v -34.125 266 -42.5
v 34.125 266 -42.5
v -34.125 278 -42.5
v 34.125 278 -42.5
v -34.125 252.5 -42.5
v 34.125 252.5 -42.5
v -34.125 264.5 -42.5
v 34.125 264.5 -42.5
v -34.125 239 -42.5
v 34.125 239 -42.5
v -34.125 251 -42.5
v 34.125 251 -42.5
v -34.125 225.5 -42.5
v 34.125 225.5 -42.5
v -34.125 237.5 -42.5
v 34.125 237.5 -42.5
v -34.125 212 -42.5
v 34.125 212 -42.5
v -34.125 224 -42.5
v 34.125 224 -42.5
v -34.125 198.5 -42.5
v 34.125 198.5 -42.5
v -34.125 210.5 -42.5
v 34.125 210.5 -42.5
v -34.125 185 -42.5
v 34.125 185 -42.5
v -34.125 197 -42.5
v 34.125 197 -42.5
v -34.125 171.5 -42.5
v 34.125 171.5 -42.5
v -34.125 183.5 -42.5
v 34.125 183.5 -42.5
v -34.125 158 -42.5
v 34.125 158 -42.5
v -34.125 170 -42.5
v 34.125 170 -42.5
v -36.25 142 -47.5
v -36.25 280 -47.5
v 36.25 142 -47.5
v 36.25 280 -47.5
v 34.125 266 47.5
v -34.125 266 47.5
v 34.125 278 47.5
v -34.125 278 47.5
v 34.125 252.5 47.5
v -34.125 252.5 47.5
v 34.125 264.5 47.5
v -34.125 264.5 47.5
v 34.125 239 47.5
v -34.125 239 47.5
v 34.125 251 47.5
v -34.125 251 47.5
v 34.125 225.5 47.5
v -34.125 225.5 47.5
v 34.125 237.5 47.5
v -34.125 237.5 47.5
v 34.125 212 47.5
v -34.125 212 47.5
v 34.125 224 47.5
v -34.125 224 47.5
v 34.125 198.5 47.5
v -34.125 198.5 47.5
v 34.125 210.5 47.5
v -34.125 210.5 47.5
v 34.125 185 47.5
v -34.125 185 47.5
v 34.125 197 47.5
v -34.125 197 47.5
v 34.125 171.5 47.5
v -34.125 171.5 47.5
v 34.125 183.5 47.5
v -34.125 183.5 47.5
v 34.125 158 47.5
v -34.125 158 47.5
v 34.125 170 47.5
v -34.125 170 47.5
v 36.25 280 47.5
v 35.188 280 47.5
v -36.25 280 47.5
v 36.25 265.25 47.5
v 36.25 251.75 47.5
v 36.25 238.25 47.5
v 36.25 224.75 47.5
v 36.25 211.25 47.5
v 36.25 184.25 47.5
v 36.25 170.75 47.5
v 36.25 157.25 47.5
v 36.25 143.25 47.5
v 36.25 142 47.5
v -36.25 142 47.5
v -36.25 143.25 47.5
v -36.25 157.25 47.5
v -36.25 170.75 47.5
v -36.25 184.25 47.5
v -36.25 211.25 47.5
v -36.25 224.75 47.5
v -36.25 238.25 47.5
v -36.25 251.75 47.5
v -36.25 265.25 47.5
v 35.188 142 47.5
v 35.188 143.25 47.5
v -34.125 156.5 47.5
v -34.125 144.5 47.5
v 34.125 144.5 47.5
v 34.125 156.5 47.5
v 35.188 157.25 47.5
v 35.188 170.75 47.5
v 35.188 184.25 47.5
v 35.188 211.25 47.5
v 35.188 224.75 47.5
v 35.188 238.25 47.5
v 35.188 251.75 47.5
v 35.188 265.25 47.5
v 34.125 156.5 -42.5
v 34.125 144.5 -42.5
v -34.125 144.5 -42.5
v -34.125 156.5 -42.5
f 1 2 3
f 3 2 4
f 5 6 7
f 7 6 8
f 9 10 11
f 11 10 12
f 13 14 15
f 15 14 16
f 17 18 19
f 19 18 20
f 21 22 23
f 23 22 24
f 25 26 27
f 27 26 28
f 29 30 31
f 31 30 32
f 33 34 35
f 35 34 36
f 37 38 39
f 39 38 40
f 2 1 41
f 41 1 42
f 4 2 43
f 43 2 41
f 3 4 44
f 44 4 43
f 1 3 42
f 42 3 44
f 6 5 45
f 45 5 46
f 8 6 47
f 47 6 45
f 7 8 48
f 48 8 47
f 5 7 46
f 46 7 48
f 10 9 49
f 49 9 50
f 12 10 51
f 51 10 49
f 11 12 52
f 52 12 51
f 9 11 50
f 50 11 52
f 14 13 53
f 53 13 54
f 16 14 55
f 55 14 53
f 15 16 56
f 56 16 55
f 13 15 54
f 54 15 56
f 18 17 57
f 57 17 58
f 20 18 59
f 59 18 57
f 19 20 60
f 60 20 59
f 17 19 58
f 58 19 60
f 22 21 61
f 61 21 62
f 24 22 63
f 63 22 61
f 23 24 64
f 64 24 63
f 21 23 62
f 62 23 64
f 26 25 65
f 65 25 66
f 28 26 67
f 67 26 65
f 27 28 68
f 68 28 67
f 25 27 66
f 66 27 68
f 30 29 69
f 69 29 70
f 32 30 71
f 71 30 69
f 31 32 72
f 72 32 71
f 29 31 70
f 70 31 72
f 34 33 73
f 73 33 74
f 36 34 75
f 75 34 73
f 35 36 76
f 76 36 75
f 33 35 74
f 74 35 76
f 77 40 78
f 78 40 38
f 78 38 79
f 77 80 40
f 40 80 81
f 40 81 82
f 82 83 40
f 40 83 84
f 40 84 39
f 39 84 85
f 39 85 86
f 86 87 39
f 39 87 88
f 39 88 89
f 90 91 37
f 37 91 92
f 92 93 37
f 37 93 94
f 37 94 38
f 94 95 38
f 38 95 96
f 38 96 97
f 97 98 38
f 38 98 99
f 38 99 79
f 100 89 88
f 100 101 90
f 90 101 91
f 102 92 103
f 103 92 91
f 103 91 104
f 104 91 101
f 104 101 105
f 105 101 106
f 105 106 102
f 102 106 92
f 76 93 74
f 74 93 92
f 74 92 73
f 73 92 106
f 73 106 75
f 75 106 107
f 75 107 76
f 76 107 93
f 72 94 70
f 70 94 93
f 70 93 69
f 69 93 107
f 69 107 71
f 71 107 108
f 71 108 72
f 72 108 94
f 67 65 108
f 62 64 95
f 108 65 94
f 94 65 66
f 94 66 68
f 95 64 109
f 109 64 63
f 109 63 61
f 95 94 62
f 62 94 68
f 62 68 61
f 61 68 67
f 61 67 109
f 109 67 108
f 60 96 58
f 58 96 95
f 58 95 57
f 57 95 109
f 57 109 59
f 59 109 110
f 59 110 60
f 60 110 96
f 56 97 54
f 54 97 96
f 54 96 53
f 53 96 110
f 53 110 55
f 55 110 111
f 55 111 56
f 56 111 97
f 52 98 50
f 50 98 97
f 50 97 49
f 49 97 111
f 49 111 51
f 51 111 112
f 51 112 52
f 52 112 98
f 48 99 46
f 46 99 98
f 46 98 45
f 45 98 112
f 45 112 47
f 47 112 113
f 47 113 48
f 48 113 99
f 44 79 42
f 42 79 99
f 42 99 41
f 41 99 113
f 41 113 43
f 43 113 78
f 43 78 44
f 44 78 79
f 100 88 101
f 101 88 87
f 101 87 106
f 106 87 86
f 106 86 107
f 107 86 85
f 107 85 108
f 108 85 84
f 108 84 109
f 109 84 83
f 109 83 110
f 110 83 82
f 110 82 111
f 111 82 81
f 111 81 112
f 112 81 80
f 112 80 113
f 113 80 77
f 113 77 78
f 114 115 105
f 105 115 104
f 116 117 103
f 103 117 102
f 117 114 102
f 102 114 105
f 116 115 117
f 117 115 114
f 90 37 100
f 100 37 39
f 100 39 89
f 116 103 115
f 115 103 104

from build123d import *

# Parameters (mm, degrees)
SKETCH1_W           = 72.5
SKETCH1_H           = 95
BOSS_EXTRUDE1_DEPTH = 104.5
SKETCH2_W           = 68.25
SKETCH2_H           = 22.5
CUT_EXTRUDE1_DEPTH  = 90
SKETCH3_W           = 72.5
SKETCH3_H           = 95
BOSS_EXTRUDE2_DEPTH = 175.5
SKETCH4_W           = 68.25
SKETCH4_H           = 12
CUT_EXTRUDE3_DEPTH  = 90
SPLIT1_OUTLINE_W    = 72.5
SPLIT1_OUTLINE_H    = 95
SPLIT1_DEPTH        = 144.5
SKETCH5_W           = 72.5
SKETCH5_H           = 95
BOSS_EXTRUDE3_DEPTH = 2.5


# Read off the part's stored shape, not the designer's step: Split1
with BuildPart() as part:
    # Sketch1 → Boss-Extrude1 (new body)
    with BuildSketch(Plane(origin=(0, 0, 0), x_dir=(1, 0, 0), z_dir=(0, 1, 0))):
        Rectangle(SKETCH1_W, SKETCH1_H)
    extrude(amount=BOSS_EXTRUDE1_DEPTH)

    # Sketch2 → Cut-Extrude1 (cut)
    with BuildSketch(Plane.XY.offset(47.5)):
        with Locations((0, 13.75)):
            Rectangle(SKETCH2_W, SKETCH2_H)
        with Locations((0, 39.25)):
            Rectangle(SKETCH2_W, SKETCH2_H)
        with Locations((0, 64.75)):
            Rectangle(SKETCH2_W, SKETCH2_H)
        with Locations((0, 90.25)):
            Rectangle(SKETCH2_W, SKETCH2_H)
    extrude(amount=-CUT_EXTRUDE1_DEPTH, mode=Mode.SUBTRACT)

    # Sketch3 → Boss-Extrude2 (add)
    with BuildSketch(Plane(origin=(0, 104.5, 0), x_dir=(1, 0, 0), z_dir=(0, 1, 0))):
        Rectangle(SKETCH3_W, SKETCH3_H)
    extrude(amount=BOSS_EXTRUDE2_DEPTH)

    # Sketch4 → Cut-Extrude3 (cut)
    with BuildSketch(Plane.XY.offset(47.5)):
        with Locations((0, 110)):
            Rectangle(SKETCH4_W, SKETCH4_H)
        with Locations((0, 123.5)):
            Rectangle(SKETCH4_W, SKETCH4_H)
        with Locations((0, 137)):
            Rectangle(SKETCH4_W, SKETCH4_H)
        with Locations((0, 150.5)):
            Rectangle(SKETCH4_W, SKETCH4_H)
        with Locations((0, 164)):
            Rectangle(SKETCH4_W, SKETCH4_H)
        with Locations((0, 177.5)):
            Rectangle(SKETCH4_W, SKETCH4_H)
        with Locations((0, 191)):
            Rectangle(SKETCH4_W, SKETCH4_H)
        with Locations((0, 204.5)):
            Rectangle(SKETCH4_W, SKETCH4_H)
        with Locations((0, 218)):
            Rectangle(SKETCH4_W, SKETCH4_H)
        with Locations((0, 231.5)):
            Rectangle(SKETCH4_W, SKETCH4_H)
        with Locations((0, 245)):
            Rectangle(SKETCH4_W, SKETCH4_H)
        with Locations((0, 258.5)):
            Rectangle(SKETCH4_W, SKETCH4_H)
        with Locations((0, 272)):
            Rectangle(SKETCH4_W, SKETCH4_H)
    extrude(amount=-CUT_EXTRUDE3_DEPTH, mode=Mode.SUBTRACT)

    # Split1 outline → Split1 (cut)
    with BuildSketch(Plane(origin=(0, 0, 0), x_dir=(1, 0, 0), z_dir=(0, 1, 0))):
        Rectangle(SPLIT1_OUTLINE_W, SPLIT1_OUTLINE_H)
    extrude(amount=SPLIT1_DEPTH, mode=Mode.SUBTRACT)

    # Sketch5 → Boss-Extrude3 (add)
    with BuildSketch(Plane.XZ.offset(-144.5)):
        Rectangle(SKETCH5_W, SKETCH5_H)
    extrude(amount=BOSS_EXTRUDE3_DEPTH)


solid = part.part
